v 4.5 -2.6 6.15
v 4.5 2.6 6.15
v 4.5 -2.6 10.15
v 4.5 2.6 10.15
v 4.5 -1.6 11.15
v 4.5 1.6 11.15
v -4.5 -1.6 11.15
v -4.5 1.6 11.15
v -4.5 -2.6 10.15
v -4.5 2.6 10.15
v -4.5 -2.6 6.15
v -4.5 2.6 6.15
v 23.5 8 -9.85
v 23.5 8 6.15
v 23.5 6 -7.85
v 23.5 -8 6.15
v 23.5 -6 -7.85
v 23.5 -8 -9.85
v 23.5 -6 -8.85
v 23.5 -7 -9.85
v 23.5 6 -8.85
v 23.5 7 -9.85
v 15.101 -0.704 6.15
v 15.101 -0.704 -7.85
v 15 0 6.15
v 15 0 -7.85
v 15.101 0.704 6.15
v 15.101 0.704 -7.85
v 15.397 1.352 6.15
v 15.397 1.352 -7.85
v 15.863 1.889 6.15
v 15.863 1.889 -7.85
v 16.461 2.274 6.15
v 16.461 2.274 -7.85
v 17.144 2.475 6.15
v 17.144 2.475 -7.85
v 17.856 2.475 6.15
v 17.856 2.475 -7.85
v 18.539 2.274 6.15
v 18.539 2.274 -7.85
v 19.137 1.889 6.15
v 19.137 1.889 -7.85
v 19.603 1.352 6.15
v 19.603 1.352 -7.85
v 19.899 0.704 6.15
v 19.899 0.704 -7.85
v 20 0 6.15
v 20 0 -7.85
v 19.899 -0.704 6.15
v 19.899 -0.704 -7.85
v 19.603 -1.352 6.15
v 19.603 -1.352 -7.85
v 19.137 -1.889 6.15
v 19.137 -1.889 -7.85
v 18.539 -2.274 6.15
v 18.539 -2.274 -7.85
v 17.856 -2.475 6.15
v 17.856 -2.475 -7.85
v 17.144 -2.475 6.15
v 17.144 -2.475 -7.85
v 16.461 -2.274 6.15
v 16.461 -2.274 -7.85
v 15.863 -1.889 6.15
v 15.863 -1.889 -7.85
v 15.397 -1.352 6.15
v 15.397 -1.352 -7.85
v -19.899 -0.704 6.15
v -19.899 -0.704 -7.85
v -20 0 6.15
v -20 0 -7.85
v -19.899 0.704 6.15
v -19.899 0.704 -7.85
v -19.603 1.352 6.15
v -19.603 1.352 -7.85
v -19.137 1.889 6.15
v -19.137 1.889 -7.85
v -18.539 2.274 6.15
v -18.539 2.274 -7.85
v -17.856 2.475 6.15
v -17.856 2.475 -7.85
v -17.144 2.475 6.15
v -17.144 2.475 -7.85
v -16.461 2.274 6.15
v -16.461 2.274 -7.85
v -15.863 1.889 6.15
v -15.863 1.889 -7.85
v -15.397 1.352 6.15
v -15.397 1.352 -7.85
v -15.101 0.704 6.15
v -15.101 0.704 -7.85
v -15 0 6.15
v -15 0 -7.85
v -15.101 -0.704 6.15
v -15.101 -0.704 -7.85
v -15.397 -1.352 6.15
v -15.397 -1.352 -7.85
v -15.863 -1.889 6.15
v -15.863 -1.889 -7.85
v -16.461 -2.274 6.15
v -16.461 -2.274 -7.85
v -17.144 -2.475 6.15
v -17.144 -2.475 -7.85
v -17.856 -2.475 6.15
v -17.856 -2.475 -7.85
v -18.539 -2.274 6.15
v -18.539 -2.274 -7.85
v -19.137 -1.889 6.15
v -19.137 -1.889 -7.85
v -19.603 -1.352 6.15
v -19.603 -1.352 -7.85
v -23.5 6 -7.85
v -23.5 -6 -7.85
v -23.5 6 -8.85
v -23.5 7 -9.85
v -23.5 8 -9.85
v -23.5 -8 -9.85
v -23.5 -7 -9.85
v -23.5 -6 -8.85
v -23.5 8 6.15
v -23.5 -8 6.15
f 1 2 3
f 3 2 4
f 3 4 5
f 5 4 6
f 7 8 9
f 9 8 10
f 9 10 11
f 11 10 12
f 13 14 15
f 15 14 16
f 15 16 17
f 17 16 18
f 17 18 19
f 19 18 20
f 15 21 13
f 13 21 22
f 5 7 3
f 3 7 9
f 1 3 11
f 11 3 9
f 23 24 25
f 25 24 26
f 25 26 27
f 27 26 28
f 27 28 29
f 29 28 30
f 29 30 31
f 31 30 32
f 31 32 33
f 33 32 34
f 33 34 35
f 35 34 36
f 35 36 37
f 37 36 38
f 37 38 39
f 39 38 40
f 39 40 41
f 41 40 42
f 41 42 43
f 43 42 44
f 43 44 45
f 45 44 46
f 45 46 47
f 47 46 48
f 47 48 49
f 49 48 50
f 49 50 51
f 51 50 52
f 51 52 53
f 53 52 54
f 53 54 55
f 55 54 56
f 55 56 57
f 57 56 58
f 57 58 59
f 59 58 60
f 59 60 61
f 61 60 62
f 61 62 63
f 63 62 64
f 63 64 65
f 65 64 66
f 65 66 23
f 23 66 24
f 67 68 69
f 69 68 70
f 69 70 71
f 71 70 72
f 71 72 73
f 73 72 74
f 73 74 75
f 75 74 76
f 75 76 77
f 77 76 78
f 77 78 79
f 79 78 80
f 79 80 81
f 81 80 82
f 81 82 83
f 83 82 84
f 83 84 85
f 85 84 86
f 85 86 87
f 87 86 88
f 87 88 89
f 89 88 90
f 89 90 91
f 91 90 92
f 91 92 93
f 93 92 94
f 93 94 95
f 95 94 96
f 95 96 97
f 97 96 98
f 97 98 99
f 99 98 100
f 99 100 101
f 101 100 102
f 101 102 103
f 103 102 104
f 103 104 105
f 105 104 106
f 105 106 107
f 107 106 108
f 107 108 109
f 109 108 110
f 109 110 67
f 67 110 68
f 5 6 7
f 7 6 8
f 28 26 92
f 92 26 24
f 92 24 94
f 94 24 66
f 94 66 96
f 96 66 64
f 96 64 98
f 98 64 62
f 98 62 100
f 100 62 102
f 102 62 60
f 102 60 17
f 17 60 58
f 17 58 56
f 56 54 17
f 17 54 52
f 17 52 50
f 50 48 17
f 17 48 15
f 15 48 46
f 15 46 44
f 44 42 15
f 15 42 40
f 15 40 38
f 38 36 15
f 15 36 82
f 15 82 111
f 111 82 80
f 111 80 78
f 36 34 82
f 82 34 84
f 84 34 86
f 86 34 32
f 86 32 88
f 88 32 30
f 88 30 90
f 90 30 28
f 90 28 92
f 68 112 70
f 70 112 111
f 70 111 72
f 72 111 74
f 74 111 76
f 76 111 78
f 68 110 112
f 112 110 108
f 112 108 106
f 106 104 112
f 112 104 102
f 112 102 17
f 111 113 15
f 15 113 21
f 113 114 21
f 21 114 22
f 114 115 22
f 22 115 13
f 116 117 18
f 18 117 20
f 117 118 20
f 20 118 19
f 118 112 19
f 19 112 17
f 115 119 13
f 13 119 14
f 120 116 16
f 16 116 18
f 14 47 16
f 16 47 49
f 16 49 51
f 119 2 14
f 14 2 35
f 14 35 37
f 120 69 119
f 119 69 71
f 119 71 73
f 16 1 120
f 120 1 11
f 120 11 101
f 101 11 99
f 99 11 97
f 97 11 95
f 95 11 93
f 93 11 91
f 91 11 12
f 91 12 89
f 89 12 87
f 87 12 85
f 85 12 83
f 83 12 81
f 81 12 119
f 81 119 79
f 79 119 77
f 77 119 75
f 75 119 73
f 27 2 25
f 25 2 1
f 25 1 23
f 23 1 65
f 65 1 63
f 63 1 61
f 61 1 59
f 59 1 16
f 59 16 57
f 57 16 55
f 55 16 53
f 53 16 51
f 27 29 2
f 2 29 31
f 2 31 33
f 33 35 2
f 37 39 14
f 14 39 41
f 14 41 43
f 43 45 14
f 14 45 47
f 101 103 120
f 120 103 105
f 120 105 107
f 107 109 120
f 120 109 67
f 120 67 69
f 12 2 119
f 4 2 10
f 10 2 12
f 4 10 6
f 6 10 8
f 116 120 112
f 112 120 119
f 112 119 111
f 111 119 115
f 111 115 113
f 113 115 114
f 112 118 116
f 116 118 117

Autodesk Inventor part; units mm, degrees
ref_plane "YZ Plane" through (0, 0, 0) normal (1, 0, 0) x (0, 1, 0)
ref_plane "XZ Plane" through (0, 0, 0) normal (0, 1, 0) x (-1, 0, 0)
ref_plane "XY Plane" through (0, 0, 0) normal (0, 0, 1) x (1, 0, 0)
ref_plane "작업 평면1" through (23.5, -8, -2) normal (1, 0, 0) x (0, 0, -1)
sketch "스케치1" plane through (23.5, -8, -2) normal (1, 0, 0) x (0, 0, -1)
  line L0 (0, 16) -> (-8.15, 16) projected
  line L1 (-8.15, 16) -> (-8.15, 10.6) projected
  line L2 (-8.15, 10.6) -> (-12.15, 10.6) projected
  line L3 (-13.15, 9.6) -> (-12.15, 10.6) projected
  line L4 (-13.15, 9.6) -> (-13.15, 6.4) projected
  line L5 (-12.15, 5.4) -> (-13.15, 6.4) projected
  line L6 (-12.15, 5.4) -> (-8.15, 5.4) projected
  line L7 (-8.15, 5.4) -> (-8.15, 0) projected
  line L8 (-8.15, 0) -> (0, 0) projected
  line L9 (0, 16) -> (7.85, 16)
  line L10 (7.85, 16) -> (7.85, 15)
  line L11 (7.85, 15) -> (6.85, 14)
  line L12 (5.85, 14) -> (5.85, 2)
  line L13 (5.85, 14) -> (6.85, 14)
  line L14 (0, 0) -> (7.85, 0)
  line L15 (7.85, 0) -> (7.85, 1)
  line L16 (7.85, 1) -> (6.85, 2)
  line L17 (5.85, 2) -> (6.85, 2)
  line L18 (0, 16) -> (-8.15, 16)
  line L19 (-8.15, 10.6) -> (-12.15, 10.6) projected
  line L20 (-8.15, 10.6) -> (-12.15, 10.6)
  line L21 (-12.15, 10.6) -> (-13.15, 9.6)
  line L22 (-13.15, 6.4) -> (-12.15, 5.4)
  point P0 (-2, 8)
  dimension "d1" = 7.85
sketch "스케치2" plane through (-23.5, 8, 6.15) normal (0, 0, 1) x (1, 0, 0)
  arc A0 (7.9209, -9.6) -> (7.9209, -6.4) centre (6, -8) ccw projected
  line L0 (39.0791, -9.6) -> (7.9209, -9.6) projected
  circle A1 centre (6, -8) radius 2.5
  circle A2 centre (41, -8) radius 2.5 projected
  circle A3 centre (41, -8) radius 2.5
  point P0 (23.5, -8)
  point P1 (7.9209, -6.4)
extrude "돌출1" add sketch "스케치1" against normal up to surface (47 mm away)
extrude "돌출2" cut sketch "스케치2" along normal mid plane 50
sketch "스케치3" plane through (-15.5791, 1.6, 11.15) normal (0, 0, 1) x (1, 0, 0)
  line L0 (15.5791, -14.4593) -> (15.5791, 15.5737)
  line L1 (-7.9209, 4.4) -> (-7.9209, -7.6) projected
  line L2 (-7.9209, 4.4) -> (11.0791, 4.4)
  line L3 (11.0791, 4.4) -> (11.0791, -7.6)
  line L4 (11.0791, -7.6) -> (-7.9209, -7.6)
  line L5 (-7.9209, -7.6) -> (-7.9209, 4.4)
  line L6 (39.0791, 4.4) -> (39.0791, -7.6)
  line L7 (39.0791, 4.4) -> (20.0791, 4.4)
  line L8 (20.0791, 4.4) -> (20.0791, -7.6)
  line L9 (20.0791, -7.6) -> (39.0791, -7.6)
  line L10 (39.0791, -7.6) -> (39.0791, 4.4)
  point P0 (15.5791, -1.6)
  dimension "d9" = 19
extrude "돌출3" cut sketch "스케치3" against normal up to surface (5 mm away)
properties part number "Bearing Spacer_1.5mmUP"
